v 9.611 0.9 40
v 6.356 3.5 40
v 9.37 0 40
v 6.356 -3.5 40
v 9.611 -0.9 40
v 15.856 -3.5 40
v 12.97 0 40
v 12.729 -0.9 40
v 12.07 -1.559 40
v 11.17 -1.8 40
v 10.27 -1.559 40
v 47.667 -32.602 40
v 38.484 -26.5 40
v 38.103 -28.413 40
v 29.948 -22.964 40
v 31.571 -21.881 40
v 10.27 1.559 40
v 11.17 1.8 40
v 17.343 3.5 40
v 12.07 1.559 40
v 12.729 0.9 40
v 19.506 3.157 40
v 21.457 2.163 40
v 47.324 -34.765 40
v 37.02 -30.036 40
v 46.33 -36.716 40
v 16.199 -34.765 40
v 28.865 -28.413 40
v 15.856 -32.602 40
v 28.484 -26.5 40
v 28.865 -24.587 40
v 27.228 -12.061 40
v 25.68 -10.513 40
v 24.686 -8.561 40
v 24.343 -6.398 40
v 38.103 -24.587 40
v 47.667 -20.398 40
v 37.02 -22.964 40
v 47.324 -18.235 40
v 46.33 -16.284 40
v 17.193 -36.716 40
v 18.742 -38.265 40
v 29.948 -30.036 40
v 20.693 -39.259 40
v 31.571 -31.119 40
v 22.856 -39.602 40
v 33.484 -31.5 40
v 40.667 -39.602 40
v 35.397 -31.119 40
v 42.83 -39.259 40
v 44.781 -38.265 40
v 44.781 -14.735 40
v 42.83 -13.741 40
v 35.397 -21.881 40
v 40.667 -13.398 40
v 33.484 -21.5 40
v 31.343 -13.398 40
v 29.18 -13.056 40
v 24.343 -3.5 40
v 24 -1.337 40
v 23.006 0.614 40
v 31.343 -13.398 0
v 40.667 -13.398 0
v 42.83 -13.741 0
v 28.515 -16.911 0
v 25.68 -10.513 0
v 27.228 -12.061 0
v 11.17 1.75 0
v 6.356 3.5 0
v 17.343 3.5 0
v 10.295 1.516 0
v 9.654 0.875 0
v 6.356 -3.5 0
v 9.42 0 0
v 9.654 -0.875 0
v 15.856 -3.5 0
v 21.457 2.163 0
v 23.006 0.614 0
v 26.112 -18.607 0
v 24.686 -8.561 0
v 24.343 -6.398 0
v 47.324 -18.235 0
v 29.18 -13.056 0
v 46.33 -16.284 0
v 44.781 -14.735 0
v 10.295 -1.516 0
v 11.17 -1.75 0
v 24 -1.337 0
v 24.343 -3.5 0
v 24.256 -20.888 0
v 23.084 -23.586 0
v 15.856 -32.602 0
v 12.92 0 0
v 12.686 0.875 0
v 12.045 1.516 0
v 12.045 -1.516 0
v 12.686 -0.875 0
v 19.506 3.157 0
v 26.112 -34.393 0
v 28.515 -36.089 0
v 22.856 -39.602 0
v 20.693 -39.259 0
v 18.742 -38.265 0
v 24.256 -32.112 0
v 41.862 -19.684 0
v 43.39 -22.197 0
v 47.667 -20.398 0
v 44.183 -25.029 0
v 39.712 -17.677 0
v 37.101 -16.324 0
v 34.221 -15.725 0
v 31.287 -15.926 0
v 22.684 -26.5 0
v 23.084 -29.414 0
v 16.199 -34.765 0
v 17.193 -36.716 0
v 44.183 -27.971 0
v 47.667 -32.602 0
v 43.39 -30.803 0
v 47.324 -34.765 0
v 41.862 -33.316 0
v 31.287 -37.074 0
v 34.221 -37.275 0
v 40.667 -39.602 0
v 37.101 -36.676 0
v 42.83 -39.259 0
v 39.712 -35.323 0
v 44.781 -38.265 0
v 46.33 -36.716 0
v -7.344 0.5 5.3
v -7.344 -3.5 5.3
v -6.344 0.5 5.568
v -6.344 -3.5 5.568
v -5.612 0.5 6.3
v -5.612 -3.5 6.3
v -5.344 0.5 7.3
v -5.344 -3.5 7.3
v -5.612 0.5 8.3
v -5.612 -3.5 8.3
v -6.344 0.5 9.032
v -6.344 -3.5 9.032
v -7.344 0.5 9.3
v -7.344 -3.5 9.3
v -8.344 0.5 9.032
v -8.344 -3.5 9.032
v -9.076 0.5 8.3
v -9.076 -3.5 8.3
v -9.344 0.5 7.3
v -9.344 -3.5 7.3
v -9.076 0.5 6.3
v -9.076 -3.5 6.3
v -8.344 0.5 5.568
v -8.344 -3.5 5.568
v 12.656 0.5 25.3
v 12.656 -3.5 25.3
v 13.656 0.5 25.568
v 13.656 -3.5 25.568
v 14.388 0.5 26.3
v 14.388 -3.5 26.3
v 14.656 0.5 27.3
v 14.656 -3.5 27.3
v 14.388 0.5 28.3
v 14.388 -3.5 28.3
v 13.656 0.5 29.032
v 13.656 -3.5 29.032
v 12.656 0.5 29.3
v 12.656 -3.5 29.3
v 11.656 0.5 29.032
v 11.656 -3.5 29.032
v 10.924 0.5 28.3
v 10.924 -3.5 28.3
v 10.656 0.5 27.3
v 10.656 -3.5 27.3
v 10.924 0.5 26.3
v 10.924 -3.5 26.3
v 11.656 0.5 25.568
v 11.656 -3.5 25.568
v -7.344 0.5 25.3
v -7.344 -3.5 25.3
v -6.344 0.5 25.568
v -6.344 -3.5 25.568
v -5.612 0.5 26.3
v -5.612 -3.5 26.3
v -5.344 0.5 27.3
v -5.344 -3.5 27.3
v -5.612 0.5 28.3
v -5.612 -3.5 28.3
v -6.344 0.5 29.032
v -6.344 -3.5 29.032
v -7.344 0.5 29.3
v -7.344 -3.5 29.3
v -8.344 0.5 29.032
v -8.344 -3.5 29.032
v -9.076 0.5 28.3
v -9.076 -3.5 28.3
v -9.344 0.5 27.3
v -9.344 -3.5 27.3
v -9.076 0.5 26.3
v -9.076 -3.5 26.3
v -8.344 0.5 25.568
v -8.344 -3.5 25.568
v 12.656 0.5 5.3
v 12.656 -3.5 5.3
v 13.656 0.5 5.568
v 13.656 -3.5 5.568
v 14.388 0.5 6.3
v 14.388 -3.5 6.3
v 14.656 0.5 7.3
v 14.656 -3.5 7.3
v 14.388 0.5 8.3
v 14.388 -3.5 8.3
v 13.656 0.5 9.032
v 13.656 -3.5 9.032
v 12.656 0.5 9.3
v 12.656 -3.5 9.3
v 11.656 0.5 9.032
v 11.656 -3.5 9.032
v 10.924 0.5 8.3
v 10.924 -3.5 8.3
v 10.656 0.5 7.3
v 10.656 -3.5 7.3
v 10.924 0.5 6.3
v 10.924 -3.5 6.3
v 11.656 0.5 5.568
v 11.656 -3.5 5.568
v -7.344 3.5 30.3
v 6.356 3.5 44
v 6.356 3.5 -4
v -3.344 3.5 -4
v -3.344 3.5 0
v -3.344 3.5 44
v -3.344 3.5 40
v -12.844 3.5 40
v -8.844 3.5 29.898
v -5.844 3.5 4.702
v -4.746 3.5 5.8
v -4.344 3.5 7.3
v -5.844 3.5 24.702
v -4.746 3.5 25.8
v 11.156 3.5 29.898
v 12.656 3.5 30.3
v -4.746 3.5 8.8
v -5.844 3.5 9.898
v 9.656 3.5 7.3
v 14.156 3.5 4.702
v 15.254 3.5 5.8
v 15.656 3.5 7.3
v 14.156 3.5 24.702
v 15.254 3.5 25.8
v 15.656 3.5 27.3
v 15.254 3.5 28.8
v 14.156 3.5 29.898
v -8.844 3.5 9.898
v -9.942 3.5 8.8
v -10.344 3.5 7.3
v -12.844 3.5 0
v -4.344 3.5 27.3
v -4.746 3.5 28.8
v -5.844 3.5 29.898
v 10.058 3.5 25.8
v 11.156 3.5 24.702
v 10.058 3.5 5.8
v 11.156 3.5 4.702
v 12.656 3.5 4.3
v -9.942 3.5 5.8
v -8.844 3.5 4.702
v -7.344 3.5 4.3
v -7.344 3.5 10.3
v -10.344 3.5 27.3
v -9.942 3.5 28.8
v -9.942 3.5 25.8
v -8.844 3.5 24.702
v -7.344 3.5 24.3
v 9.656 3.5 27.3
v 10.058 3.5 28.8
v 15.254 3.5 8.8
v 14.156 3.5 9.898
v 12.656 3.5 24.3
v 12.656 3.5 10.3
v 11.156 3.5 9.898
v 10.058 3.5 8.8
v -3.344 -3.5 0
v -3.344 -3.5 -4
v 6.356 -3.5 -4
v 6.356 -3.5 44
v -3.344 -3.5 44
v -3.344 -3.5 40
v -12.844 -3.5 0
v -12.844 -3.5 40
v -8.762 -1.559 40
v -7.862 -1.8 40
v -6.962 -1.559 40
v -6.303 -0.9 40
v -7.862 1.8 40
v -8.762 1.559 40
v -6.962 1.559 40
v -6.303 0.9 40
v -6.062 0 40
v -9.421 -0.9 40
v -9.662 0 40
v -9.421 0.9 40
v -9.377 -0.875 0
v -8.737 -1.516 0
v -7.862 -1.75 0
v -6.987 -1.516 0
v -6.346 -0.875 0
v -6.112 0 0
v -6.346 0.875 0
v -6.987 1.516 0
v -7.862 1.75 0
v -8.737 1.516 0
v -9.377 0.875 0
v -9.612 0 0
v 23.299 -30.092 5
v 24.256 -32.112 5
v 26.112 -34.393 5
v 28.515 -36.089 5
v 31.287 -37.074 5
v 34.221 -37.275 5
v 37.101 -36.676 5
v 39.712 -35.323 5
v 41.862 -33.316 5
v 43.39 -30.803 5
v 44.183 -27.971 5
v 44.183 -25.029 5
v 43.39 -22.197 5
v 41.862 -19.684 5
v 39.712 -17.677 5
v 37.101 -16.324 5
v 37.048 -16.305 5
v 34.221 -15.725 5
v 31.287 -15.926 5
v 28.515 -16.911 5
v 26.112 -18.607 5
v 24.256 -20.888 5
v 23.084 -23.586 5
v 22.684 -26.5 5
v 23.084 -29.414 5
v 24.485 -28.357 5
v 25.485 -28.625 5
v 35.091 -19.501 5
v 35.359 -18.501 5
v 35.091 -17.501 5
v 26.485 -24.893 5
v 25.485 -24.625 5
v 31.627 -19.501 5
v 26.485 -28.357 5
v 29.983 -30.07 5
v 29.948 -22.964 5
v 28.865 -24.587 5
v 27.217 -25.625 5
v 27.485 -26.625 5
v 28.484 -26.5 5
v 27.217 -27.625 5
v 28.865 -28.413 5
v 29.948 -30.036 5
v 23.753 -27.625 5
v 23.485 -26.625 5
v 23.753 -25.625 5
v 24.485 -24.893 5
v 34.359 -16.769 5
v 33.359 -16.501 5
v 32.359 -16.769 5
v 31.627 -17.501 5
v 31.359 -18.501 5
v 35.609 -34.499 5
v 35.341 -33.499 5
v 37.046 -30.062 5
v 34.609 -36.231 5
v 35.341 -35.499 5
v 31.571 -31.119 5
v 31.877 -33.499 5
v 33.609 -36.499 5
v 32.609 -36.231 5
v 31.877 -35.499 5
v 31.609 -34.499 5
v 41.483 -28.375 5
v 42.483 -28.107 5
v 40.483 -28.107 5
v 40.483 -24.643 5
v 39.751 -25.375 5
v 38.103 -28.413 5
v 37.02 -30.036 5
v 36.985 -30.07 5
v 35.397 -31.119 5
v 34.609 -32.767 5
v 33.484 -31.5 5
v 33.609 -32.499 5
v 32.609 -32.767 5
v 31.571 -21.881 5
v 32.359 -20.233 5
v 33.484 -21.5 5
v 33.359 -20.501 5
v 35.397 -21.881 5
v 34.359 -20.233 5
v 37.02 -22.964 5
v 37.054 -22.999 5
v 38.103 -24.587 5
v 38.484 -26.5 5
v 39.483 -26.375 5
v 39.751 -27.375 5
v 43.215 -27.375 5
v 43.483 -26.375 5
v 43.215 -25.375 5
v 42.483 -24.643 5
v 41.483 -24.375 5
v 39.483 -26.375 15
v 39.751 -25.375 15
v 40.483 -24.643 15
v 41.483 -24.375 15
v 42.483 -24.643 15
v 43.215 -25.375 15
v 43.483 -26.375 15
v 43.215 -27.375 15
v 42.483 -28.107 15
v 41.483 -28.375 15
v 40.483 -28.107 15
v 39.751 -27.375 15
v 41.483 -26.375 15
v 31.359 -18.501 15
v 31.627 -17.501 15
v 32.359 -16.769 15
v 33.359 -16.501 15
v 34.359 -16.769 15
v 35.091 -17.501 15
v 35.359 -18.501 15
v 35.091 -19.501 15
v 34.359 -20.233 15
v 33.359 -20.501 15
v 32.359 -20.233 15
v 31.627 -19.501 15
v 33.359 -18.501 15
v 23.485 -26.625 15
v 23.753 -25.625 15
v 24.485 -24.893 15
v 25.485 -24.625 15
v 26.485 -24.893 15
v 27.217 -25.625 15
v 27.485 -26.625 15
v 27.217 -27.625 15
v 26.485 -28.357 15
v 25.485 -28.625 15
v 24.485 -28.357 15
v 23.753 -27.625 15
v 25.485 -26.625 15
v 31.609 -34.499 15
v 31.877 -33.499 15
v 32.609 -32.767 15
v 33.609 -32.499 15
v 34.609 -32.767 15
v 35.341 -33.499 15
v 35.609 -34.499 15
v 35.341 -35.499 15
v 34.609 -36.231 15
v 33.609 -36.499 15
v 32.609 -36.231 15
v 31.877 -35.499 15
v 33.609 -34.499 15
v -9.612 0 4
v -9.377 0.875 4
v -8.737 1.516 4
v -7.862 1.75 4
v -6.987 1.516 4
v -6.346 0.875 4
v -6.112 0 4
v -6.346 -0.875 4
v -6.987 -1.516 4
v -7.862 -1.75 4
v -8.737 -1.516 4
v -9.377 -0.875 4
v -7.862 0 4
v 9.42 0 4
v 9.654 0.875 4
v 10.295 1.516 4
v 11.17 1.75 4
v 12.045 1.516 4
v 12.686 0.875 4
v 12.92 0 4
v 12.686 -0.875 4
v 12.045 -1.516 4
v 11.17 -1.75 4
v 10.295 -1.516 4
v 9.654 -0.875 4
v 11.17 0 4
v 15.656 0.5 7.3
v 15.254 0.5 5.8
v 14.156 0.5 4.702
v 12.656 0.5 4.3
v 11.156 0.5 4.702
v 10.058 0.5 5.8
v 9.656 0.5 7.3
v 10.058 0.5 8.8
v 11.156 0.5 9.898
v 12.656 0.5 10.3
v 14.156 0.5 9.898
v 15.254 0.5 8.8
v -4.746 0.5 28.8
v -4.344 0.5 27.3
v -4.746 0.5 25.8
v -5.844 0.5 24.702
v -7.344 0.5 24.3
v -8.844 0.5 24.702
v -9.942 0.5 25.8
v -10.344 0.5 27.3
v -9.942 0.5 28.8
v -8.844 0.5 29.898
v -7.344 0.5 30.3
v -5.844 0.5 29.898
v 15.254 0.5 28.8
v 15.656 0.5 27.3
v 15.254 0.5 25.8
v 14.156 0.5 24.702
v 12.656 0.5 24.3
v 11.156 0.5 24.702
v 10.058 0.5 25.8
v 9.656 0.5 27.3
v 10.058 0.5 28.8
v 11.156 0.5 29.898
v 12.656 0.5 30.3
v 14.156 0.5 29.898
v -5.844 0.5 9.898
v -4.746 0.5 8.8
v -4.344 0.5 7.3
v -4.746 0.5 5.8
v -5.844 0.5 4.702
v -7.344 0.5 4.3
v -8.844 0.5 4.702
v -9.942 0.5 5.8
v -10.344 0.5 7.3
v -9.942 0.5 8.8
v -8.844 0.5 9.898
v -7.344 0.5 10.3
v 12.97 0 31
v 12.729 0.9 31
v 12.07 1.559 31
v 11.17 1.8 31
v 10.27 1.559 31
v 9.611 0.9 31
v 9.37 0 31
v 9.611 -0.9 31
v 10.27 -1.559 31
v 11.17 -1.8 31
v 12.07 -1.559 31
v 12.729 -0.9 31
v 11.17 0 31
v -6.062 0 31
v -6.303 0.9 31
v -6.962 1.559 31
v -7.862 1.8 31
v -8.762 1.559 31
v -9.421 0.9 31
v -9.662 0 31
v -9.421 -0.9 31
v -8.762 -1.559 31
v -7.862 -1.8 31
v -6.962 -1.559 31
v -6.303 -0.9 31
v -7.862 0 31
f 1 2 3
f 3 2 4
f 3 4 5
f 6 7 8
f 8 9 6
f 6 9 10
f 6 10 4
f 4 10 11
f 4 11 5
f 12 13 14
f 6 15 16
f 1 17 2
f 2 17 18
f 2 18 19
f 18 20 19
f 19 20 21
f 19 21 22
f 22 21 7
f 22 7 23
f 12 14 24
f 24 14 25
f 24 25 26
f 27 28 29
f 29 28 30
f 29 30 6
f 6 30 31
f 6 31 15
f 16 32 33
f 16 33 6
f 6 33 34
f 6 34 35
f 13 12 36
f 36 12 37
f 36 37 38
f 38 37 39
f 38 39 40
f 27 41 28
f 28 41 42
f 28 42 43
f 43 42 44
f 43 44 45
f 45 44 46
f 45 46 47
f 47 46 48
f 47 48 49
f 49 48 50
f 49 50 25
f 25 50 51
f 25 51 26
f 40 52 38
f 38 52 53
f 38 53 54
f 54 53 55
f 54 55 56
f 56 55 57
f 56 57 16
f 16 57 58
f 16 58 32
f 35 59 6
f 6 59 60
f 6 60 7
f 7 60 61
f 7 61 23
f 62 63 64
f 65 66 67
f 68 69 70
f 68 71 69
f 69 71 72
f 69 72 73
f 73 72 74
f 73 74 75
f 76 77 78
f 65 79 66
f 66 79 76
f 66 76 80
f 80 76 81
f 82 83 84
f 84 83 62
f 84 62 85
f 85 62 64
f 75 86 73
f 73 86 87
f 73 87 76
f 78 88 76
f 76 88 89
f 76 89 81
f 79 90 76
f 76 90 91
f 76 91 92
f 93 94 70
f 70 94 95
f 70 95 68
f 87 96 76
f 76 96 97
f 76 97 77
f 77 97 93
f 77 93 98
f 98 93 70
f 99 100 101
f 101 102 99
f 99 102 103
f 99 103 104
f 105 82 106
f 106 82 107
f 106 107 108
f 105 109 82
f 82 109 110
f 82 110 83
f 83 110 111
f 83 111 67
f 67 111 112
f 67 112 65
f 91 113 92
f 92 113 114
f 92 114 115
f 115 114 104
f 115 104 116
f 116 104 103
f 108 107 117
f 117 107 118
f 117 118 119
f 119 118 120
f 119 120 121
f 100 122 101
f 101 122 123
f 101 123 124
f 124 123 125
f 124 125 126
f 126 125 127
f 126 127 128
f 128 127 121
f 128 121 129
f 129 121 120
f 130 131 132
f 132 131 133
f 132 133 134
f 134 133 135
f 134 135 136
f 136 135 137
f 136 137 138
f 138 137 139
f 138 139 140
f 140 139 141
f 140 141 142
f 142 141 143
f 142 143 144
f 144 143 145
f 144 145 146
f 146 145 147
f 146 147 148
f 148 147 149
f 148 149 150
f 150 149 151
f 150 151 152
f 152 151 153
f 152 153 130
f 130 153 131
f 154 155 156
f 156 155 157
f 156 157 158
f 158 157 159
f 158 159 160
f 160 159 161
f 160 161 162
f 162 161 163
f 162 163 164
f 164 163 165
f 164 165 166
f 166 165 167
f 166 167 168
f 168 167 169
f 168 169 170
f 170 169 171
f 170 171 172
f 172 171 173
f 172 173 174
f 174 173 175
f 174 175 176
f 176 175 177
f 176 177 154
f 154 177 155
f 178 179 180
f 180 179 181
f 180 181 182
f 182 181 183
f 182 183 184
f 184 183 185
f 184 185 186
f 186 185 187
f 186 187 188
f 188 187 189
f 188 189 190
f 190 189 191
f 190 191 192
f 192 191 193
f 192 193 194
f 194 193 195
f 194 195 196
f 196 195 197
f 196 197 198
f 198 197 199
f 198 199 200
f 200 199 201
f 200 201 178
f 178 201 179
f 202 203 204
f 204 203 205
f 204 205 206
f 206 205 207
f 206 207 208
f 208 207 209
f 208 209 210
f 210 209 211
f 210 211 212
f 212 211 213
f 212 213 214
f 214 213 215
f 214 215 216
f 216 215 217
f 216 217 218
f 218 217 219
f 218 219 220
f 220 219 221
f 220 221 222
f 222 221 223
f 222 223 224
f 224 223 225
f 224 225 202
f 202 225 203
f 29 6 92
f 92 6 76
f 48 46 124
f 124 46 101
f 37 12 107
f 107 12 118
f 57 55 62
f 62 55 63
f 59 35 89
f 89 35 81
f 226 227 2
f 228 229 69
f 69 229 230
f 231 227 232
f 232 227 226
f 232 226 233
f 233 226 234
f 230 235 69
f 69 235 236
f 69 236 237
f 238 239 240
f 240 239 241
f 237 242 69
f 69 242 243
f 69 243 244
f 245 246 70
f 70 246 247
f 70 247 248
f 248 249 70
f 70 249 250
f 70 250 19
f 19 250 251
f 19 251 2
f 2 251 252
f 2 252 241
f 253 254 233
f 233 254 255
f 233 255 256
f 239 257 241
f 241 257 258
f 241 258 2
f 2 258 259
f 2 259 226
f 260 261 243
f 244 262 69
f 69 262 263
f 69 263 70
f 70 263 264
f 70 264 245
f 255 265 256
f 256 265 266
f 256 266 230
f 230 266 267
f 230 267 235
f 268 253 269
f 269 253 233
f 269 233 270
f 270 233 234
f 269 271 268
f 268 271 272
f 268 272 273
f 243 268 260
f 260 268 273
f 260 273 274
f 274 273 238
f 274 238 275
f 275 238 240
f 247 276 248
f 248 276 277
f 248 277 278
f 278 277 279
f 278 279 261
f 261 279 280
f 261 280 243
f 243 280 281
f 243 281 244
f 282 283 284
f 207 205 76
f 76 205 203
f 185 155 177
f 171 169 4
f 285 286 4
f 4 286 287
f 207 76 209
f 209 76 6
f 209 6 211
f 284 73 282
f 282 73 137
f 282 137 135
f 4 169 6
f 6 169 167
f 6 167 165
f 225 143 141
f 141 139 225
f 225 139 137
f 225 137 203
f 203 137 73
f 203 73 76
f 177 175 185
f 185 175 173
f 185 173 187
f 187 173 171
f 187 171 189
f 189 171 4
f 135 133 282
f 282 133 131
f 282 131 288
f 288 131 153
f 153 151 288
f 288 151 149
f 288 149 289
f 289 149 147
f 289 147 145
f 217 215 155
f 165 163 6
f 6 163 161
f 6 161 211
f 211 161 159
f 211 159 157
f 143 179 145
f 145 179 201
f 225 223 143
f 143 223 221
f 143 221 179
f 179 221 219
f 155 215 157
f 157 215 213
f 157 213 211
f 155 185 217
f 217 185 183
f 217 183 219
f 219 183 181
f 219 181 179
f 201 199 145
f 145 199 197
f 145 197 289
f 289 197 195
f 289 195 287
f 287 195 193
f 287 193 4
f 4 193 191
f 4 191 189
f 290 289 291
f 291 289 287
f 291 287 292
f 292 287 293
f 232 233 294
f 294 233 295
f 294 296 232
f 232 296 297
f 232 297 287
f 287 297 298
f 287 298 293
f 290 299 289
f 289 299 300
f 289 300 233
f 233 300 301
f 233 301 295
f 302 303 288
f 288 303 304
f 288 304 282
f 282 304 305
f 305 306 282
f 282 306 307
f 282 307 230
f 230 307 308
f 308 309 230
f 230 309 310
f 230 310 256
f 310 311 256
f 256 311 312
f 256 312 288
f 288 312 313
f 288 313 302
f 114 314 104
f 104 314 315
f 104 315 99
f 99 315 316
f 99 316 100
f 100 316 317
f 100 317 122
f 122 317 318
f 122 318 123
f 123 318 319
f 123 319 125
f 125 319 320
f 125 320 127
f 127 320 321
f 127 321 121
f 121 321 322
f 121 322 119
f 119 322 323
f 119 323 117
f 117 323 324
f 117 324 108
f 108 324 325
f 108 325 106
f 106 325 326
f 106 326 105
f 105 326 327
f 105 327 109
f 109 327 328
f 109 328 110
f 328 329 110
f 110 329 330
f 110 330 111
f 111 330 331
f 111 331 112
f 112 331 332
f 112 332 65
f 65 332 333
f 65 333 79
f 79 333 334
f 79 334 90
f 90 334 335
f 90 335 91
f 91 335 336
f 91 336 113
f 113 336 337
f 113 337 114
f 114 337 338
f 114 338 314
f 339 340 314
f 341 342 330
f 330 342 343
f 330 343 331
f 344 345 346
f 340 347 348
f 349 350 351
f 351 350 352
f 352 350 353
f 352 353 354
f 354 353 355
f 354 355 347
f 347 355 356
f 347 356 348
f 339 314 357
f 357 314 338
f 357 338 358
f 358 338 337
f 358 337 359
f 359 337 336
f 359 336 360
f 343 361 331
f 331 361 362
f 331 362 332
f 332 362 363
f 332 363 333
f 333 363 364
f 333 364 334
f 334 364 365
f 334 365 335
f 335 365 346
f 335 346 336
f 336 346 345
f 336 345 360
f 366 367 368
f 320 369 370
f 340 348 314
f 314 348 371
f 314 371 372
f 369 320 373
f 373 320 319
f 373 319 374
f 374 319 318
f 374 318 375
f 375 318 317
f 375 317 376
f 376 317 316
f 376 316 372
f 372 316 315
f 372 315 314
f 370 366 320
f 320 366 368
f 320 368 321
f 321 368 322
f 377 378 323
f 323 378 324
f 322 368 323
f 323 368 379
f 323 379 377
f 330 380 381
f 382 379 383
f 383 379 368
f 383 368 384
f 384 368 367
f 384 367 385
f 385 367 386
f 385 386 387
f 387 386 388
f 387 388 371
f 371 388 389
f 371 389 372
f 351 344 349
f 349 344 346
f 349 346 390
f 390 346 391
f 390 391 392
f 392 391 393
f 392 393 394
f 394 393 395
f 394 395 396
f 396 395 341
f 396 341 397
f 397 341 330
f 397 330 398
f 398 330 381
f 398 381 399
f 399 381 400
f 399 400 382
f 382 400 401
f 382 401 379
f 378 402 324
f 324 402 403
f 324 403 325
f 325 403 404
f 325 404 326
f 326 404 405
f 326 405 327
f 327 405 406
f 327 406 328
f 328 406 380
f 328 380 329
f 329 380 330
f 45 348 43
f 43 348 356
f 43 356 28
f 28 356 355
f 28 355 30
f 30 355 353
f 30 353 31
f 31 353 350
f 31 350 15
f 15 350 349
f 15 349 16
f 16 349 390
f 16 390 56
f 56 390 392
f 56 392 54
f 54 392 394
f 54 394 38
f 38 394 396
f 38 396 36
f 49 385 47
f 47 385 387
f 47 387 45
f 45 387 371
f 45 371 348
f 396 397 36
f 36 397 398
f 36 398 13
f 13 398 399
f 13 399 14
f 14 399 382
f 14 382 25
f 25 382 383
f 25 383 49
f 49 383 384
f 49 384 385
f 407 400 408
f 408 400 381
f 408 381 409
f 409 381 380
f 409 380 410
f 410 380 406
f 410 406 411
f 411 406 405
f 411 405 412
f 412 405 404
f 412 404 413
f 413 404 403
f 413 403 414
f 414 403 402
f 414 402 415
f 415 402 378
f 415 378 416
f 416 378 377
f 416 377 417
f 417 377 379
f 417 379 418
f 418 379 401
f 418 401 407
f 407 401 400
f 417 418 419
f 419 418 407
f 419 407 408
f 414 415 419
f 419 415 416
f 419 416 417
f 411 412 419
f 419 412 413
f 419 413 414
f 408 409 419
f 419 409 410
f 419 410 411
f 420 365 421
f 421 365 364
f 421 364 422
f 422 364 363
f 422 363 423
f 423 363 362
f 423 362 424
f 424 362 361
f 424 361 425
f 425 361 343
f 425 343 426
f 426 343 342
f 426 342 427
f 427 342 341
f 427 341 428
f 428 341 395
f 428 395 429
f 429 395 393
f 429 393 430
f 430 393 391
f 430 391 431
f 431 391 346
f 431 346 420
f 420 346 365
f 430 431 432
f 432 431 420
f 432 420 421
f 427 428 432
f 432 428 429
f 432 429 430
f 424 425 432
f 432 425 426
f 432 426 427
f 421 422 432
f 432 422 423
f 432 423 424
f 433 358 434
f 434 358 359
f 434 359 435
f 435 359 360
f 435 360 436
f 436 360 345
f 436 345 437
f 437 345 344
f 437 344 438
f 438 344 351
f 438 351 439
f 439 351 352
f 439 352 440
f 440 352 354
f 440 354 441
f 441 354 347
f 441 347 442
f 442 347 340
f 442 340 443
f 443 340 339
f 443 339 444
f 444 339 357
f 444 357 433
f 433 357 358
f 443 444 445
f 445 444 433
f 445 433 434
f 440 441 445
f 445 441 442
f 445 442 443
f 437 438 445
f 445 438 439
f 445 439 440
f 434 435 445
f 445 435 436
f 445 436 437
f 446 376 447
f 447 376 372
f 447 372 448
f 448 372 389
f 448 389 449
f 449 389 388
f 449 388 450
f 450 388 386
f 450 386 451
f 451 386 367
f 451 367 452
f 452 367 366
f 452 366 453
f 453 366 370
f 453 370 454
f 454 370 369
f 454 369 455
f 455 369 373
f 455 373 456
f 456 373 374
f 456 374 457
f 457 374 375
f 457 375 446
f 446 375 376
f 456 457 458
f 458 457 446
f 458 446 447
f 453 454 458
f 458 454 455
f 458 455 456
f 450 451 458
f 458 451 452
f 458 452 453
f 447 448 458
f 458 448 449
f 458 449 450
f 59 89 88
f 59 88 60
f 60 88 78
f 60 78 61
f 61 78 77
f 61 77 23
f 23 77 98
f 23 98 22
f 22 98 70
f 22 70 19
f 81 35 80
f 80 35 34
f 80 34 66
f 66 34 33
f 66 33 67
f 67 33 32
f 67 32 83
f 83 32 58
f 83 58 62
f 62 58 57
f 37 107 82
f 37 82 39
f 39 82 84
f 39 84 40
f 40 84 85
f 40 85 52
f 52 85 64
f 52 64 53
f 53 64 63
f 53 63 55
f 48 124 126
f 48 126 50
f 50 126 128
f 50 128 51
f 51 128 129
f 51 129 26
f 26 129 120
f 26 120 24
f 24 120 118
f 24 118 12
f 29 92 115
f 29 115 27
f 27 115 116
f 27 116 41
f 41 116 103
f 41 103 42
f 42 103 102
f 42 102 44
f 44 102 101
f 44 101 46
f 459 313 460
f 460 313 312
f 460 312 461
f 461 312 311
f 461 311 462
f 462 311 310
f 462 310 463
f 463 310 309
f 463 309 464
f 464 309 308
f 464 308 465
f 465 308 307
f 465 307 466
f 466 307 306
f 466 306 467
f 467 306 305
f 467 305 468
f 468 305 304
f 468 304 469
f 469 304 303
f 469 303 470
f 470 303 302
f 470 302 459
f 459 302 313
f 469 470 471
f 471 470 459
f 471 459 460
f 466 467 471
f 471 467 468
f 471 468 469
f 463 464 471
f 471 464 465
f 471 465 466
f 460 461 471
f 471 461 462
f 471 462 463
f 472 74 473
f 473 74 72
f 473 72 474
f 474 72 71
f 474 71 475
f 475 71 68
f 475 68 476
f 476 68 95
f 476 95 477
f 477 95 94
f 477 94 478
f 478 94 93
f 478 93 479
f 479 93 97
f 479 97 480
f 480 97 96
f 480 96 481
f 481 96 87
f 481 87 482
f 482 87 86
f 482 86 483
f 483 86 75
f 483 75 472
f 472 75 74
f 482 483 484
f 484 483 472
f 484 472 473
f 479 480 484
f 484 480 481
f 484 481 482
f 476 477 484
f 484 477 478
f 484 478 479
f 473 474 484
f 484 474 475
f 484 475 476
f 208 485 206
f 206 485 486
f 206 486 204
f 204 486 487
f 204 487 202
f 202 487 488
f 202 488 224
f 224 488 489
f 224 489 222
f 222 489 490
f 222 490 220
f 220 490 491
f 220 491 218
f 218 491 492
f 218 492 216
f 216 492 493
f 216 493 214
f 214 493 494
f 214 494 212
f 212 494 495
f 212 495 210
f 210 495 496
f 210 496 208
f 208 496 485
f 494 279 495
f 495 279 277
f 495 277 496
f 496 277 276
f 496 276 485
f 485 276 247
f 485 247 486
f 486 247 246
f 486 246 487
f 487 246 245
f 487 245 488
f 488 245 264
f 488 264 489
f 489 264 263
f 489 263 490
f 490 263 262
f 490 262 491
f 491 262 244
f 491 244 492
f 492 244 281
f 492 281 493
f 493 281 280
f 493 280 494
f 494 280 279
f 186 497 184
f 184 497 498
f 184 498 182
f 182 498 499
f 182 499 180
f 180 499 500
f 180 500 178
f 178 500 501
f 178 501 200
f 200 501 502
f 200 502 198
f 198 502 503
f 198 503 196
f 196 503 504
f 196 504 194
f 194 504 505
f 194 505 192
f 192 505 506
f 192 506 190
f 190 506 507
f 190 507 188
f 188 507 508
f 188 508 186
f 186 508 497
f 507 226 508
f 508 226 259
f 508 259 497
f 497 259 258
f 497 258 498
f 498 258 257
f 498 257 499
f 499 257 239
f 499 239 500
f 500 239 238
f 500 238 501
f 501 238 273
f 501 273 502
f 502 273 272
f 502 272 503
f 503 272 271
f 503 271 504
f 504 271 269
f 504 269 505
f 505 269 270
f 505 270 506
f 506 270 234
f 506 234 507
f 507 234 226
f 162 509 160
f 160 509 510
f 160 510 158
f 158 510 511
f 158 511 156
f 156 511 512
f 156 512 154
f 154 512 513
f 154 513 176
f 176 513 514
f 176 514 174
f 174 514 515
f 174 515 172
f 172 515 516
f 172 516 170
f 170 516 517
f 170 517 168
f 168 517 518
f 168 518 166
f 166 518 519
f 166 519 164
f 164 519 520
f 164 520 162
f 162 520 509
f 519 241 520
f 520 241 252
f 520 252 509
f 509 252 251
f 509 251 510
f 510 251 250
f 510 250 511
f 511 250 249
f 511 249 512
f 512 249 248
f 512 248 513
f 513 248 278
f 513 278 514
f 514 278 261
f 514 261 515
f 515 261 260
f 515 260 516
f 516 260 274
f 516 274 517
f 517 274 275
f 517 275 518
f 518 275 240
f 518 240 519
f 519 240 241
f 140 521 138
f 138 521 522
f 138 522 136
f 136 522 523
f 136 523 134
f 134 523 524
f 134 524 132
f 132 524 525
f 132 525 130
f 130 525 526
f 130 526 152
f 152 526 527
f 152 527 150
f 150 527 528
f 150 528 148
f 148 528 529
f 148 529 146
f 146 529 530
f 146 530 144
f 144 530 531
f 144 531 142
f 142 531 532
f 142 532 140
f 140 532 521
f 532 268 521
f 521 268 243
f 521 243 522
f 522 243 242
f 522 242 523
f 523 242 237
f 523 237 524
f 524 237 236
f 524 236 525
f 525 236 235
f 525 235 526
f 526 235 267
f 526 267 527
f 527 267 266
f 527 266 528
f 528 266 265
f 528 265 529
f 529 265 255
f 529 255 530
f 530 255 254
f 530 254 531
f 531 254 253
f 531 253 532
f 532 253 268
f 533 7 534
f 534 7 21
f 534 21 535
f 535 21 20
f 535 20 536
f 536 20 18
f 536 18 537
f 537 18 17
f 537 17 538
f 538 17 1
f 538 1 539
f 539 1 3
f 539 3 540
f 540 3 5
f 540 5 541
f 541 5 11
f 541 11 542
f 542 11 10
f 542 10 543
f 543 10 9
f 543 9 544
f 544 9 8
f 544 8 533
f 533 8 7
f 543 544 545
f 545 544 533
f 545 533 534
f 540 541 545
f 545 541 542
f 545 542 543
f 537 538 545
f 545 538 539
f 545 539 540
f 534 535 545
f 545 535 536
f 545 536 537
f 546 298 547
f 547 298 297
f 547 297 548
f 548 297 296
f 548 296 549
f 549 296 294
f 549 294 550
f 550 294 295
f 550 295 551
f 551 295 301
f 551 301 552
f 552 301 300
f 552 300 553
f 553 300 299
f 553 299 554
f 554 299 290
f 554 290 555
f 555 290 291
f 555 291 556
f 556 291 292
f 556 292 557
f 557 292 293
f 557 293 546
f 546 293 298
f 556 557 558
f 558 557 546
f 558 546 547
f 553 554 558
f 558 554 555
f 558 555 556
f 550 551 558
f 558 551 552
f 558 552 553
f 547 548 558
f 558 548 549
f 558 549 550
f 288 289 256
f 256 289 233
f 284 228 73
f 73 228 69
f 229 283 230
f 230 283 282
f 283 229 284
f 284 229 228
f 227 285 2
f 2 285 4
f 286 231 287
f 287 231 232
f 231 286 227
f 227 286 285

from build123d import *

# Parameters (mm, degrees)
BOSS_EXTRUDE1_DEPTH = 40
CUT_EXTRUDE1_START  = -40
SKETCH2_R           = 10.8
SKETCH2_R_2         = 5
CUT_EXTRUDE1_DEPTH  = 5
SKETCH2_3_R         = 5
CUT_EXTRUDE2_DEPTH  = 74.759130645
CUT_EXTRUDE3_START  = -40
SKETCH3_R           = 2
CUT_EXTRUDE3_DEPTH  = 15
SKETCH5_R           = 2
CUT_EXTRUDE4_DEPTH  = 72.940583606
FILLET1_R           = 7
SKETCH12_R          = 1.75
CUT_EXTRUDE11_DEPTH = 4
SKETCH14_R          = 3
CUT_EXTRUDE12_DEPTH = 3
SKETCH15_R          = 1.8
CUT_EXTRUDE13_DEPTH = 9
SKETCH16_W          = 40
SKETCH16_H          = 7
BOSS_EXTRUDE5_DEPTH = 2
SKETCH18_W          = 9.7
SKETCH18_H          = 7
BOSS_EXTRUDE6_DEPTH = 4


with BuildPart() as part:
    # Sketch1 → Boss-Extrude1 (new body)
    with BuildSketch(Plane.XY):
        Polygon((-10.843639069, 3.5), (-10.843639069, -3.5), (15.856339325, -3.5), (15.856339325, -39.601683417), (47.6667182, -39.601683417), (47.6667182, -13.398324584), (24.342902039, -13.398324584), (24.342902039, 3.5), align=None)
    extrude(amount=BOSS_EXTRUDE1_DEPTH)

    # Sketch2 → Cut-Extrude1 (cut)
    # profile 1 of 2: a face of its own
    with BuildSketch(Plane.XY.offset(40).offset(CUT_EXTRUDE1_START)):
        with Locations(Location((33.48398225, -26.500004001, 0), (0, 0, 180))):
            Circle(SKETCH2_R)
        with Locations((33.48398225, -26.500004001)):
            Circle(SKETCH2_R_2, mode=Mode.SUBTRACT)
    # profile 2 of 2: a face of its own
    with BuildSketch(Plane.XY.offset(40).offset(CUT_EXTRUDE1_START)):
        with Locations((33.48398225, -26.500004001)):
            Circle(SKETCH2_R_2)
    extrude(amount=CUT_EXTRUDE1_DEPTH, mode=Mode.SUBTRACT)

    # Sketch2<3> → Cut-Extrude2 (cut, through all)
    with BuildSketch(Plane.XY.offset(40)):
        with Locations((33.48398225, -26.500004001)):
            Circle(SKETCH2_3_R)
    extrude(amount=-CUT_EXTRUDE2_DEPTH, mode=Mode.SUBTRACT)

    # Sketch3 → Cut-Extrude3 (cut)
    with BuildSketch(Plane.XY.offset(40).offset(CUT_EXTRUDE3_START)):
        with Locations(Location((33.608608886, -34.499033204, 0), (0, 0, 180))):
            Circle(SKETCH3_R)
        with Locations(Location((25.484953047, -26.624630636, 0), (0, 0, 180))):
            Circle(SKETCH3_R)
        with Locations(Location((33.359355615, -18.500974797, 0), (0, 0, 180))):
            Circle(SKETCH3_R)
        with Locations(Location((41.483011454, -26.375377365, 0), (0, 0, 180))):
            Circle(SKETCH3_R)
    extrude(amount=CUT_EXTRUDE3_DEPTH, mode=Mode.SUBTRACT)

    # Sketch5 → Cut-Extrude4 (cut, through all)
    with BuildSketch(Plane.XZ.offset(3.5)):
        with Locations(Location((-7.343649872, 7.3, 0), (0, 0, 270))):
            Circle(SKETCH5_R)
        with Locations(Location((12.656350128, 7.3, 0), (0, 0, 270))):
            Circle(SKETCH5_R)
        with Locations(Location((-7.343649872, 27.3, 0), (0, 0, 270))):
            Circle(SKETCH5_R)
        with Locations(Location((12.656350128, 27.3, 0), (0, 0, 270))):
            Circle(SKETCH5_R)
    extrude(amount=-CUT_EXTRUDE4_DEPTH, mode=Mode.SUBTRACT)

    # Fillet1
    fillet1_edges = [part.edges().sort_by_distance(p)[0] for p in [
        (24.342902039, 3.5, 20),
        (24.342902039, -13.398324584, 20),
        (47.6667182, -13.398324584, 20),
        (47.6667182, -39.601683417, 20),
        (15.856339325, -39.601683417, 20),
    ]]
    fillet(fillet1_edges, radius=FILLET1_R)

    # Sketch12 → Cut-Extrude11 (cut)
    with BuildSketch(Plane(origin=(0, 0, 0), x_dir=(-1, 0, 0), z_dir=(0, 0, -1))):
        with Locations((-11.169959988, 0)):
            Circle(SKETCH12_R)
        with Locations((7.861665279, 0)):
            Circle(SKETCH12_R)
    extrude(amount=-CUT_EXTRUDE11_DEPTH, mode=Mode.SUBTRACT)

    # Sketch14 → Cut-Extrude12 (cut)
    with BuildSketch(Plane(origin=(0, 3.5, 0), x_dir=(1, 0, 0), z_dir=(0, 1, 0))):
        with Locations(Location((-7.343649872, -7.3, 0), (0, 0, 270))):
            Circle(SKETCH14_R)
        with Locations(Location((-7.343649872, -27.3, 0), (0, 0, 270))):
            Circle(SKETCH14_R)
        with Locations(Location((12.656350128, -27.3, 0), (0, 0, 270))):
            Circle(SKETCH14_R)
        with Locations(Location((12.656350128, -7.3, 0), (0, 0, 270))):
            Circle(SKETCH14_R)
    extrude(amount=-CUT_EXTRUDE12_DEPTH, mode=Mode.SUBTRACT)

    # Sketch15 → Cut-Extrude13 (cut)
    with BuildSketch(Plane.XY.offset(40)):
        with Locations((-7.861665279, 0)):
            Circle(SKETCH15_R)
        with Locations((11.169959988, 0)):
            Circle(SKETCH15_R)
    extrude(amount=-CUT_EXTRUDE13_DEPTH, mode=Mode.SUBTRACT)

    # Sketch16 → Boss-Extrude5 (add)
    with BuildSketch(Plane.ZY.offset(10.843639069)):
        with Locations((20, 0)):
            Rectangle(SKETCH16_W, SKETCH16_H)
    extrude(amount=BOSS_EXTRUDE5_DEPTH)

    # Sketch18 → Boss-Extrude6 (add)
    with BuildSketch(Plane(origin=(0, 0, 0), x_dir=(-1, 0, 0), z_dir=(0, 0, -1))):
        with Locations((-1.506350128, 0)):
            Rectangle(SKETCH18_W, SKETCH18_H)
    boss_extrude6 = extrude(amount=BOSS_EXTRUDE6_DEPTH)

    # Mirror6: Boss-Extrude6 across plane
    add(boss_extrude6.mirror(Plane(origin=(0, 0, 20), x_dir=(1, 0, 0), z_dir=(0, 0, -1))))


solid = part.part
